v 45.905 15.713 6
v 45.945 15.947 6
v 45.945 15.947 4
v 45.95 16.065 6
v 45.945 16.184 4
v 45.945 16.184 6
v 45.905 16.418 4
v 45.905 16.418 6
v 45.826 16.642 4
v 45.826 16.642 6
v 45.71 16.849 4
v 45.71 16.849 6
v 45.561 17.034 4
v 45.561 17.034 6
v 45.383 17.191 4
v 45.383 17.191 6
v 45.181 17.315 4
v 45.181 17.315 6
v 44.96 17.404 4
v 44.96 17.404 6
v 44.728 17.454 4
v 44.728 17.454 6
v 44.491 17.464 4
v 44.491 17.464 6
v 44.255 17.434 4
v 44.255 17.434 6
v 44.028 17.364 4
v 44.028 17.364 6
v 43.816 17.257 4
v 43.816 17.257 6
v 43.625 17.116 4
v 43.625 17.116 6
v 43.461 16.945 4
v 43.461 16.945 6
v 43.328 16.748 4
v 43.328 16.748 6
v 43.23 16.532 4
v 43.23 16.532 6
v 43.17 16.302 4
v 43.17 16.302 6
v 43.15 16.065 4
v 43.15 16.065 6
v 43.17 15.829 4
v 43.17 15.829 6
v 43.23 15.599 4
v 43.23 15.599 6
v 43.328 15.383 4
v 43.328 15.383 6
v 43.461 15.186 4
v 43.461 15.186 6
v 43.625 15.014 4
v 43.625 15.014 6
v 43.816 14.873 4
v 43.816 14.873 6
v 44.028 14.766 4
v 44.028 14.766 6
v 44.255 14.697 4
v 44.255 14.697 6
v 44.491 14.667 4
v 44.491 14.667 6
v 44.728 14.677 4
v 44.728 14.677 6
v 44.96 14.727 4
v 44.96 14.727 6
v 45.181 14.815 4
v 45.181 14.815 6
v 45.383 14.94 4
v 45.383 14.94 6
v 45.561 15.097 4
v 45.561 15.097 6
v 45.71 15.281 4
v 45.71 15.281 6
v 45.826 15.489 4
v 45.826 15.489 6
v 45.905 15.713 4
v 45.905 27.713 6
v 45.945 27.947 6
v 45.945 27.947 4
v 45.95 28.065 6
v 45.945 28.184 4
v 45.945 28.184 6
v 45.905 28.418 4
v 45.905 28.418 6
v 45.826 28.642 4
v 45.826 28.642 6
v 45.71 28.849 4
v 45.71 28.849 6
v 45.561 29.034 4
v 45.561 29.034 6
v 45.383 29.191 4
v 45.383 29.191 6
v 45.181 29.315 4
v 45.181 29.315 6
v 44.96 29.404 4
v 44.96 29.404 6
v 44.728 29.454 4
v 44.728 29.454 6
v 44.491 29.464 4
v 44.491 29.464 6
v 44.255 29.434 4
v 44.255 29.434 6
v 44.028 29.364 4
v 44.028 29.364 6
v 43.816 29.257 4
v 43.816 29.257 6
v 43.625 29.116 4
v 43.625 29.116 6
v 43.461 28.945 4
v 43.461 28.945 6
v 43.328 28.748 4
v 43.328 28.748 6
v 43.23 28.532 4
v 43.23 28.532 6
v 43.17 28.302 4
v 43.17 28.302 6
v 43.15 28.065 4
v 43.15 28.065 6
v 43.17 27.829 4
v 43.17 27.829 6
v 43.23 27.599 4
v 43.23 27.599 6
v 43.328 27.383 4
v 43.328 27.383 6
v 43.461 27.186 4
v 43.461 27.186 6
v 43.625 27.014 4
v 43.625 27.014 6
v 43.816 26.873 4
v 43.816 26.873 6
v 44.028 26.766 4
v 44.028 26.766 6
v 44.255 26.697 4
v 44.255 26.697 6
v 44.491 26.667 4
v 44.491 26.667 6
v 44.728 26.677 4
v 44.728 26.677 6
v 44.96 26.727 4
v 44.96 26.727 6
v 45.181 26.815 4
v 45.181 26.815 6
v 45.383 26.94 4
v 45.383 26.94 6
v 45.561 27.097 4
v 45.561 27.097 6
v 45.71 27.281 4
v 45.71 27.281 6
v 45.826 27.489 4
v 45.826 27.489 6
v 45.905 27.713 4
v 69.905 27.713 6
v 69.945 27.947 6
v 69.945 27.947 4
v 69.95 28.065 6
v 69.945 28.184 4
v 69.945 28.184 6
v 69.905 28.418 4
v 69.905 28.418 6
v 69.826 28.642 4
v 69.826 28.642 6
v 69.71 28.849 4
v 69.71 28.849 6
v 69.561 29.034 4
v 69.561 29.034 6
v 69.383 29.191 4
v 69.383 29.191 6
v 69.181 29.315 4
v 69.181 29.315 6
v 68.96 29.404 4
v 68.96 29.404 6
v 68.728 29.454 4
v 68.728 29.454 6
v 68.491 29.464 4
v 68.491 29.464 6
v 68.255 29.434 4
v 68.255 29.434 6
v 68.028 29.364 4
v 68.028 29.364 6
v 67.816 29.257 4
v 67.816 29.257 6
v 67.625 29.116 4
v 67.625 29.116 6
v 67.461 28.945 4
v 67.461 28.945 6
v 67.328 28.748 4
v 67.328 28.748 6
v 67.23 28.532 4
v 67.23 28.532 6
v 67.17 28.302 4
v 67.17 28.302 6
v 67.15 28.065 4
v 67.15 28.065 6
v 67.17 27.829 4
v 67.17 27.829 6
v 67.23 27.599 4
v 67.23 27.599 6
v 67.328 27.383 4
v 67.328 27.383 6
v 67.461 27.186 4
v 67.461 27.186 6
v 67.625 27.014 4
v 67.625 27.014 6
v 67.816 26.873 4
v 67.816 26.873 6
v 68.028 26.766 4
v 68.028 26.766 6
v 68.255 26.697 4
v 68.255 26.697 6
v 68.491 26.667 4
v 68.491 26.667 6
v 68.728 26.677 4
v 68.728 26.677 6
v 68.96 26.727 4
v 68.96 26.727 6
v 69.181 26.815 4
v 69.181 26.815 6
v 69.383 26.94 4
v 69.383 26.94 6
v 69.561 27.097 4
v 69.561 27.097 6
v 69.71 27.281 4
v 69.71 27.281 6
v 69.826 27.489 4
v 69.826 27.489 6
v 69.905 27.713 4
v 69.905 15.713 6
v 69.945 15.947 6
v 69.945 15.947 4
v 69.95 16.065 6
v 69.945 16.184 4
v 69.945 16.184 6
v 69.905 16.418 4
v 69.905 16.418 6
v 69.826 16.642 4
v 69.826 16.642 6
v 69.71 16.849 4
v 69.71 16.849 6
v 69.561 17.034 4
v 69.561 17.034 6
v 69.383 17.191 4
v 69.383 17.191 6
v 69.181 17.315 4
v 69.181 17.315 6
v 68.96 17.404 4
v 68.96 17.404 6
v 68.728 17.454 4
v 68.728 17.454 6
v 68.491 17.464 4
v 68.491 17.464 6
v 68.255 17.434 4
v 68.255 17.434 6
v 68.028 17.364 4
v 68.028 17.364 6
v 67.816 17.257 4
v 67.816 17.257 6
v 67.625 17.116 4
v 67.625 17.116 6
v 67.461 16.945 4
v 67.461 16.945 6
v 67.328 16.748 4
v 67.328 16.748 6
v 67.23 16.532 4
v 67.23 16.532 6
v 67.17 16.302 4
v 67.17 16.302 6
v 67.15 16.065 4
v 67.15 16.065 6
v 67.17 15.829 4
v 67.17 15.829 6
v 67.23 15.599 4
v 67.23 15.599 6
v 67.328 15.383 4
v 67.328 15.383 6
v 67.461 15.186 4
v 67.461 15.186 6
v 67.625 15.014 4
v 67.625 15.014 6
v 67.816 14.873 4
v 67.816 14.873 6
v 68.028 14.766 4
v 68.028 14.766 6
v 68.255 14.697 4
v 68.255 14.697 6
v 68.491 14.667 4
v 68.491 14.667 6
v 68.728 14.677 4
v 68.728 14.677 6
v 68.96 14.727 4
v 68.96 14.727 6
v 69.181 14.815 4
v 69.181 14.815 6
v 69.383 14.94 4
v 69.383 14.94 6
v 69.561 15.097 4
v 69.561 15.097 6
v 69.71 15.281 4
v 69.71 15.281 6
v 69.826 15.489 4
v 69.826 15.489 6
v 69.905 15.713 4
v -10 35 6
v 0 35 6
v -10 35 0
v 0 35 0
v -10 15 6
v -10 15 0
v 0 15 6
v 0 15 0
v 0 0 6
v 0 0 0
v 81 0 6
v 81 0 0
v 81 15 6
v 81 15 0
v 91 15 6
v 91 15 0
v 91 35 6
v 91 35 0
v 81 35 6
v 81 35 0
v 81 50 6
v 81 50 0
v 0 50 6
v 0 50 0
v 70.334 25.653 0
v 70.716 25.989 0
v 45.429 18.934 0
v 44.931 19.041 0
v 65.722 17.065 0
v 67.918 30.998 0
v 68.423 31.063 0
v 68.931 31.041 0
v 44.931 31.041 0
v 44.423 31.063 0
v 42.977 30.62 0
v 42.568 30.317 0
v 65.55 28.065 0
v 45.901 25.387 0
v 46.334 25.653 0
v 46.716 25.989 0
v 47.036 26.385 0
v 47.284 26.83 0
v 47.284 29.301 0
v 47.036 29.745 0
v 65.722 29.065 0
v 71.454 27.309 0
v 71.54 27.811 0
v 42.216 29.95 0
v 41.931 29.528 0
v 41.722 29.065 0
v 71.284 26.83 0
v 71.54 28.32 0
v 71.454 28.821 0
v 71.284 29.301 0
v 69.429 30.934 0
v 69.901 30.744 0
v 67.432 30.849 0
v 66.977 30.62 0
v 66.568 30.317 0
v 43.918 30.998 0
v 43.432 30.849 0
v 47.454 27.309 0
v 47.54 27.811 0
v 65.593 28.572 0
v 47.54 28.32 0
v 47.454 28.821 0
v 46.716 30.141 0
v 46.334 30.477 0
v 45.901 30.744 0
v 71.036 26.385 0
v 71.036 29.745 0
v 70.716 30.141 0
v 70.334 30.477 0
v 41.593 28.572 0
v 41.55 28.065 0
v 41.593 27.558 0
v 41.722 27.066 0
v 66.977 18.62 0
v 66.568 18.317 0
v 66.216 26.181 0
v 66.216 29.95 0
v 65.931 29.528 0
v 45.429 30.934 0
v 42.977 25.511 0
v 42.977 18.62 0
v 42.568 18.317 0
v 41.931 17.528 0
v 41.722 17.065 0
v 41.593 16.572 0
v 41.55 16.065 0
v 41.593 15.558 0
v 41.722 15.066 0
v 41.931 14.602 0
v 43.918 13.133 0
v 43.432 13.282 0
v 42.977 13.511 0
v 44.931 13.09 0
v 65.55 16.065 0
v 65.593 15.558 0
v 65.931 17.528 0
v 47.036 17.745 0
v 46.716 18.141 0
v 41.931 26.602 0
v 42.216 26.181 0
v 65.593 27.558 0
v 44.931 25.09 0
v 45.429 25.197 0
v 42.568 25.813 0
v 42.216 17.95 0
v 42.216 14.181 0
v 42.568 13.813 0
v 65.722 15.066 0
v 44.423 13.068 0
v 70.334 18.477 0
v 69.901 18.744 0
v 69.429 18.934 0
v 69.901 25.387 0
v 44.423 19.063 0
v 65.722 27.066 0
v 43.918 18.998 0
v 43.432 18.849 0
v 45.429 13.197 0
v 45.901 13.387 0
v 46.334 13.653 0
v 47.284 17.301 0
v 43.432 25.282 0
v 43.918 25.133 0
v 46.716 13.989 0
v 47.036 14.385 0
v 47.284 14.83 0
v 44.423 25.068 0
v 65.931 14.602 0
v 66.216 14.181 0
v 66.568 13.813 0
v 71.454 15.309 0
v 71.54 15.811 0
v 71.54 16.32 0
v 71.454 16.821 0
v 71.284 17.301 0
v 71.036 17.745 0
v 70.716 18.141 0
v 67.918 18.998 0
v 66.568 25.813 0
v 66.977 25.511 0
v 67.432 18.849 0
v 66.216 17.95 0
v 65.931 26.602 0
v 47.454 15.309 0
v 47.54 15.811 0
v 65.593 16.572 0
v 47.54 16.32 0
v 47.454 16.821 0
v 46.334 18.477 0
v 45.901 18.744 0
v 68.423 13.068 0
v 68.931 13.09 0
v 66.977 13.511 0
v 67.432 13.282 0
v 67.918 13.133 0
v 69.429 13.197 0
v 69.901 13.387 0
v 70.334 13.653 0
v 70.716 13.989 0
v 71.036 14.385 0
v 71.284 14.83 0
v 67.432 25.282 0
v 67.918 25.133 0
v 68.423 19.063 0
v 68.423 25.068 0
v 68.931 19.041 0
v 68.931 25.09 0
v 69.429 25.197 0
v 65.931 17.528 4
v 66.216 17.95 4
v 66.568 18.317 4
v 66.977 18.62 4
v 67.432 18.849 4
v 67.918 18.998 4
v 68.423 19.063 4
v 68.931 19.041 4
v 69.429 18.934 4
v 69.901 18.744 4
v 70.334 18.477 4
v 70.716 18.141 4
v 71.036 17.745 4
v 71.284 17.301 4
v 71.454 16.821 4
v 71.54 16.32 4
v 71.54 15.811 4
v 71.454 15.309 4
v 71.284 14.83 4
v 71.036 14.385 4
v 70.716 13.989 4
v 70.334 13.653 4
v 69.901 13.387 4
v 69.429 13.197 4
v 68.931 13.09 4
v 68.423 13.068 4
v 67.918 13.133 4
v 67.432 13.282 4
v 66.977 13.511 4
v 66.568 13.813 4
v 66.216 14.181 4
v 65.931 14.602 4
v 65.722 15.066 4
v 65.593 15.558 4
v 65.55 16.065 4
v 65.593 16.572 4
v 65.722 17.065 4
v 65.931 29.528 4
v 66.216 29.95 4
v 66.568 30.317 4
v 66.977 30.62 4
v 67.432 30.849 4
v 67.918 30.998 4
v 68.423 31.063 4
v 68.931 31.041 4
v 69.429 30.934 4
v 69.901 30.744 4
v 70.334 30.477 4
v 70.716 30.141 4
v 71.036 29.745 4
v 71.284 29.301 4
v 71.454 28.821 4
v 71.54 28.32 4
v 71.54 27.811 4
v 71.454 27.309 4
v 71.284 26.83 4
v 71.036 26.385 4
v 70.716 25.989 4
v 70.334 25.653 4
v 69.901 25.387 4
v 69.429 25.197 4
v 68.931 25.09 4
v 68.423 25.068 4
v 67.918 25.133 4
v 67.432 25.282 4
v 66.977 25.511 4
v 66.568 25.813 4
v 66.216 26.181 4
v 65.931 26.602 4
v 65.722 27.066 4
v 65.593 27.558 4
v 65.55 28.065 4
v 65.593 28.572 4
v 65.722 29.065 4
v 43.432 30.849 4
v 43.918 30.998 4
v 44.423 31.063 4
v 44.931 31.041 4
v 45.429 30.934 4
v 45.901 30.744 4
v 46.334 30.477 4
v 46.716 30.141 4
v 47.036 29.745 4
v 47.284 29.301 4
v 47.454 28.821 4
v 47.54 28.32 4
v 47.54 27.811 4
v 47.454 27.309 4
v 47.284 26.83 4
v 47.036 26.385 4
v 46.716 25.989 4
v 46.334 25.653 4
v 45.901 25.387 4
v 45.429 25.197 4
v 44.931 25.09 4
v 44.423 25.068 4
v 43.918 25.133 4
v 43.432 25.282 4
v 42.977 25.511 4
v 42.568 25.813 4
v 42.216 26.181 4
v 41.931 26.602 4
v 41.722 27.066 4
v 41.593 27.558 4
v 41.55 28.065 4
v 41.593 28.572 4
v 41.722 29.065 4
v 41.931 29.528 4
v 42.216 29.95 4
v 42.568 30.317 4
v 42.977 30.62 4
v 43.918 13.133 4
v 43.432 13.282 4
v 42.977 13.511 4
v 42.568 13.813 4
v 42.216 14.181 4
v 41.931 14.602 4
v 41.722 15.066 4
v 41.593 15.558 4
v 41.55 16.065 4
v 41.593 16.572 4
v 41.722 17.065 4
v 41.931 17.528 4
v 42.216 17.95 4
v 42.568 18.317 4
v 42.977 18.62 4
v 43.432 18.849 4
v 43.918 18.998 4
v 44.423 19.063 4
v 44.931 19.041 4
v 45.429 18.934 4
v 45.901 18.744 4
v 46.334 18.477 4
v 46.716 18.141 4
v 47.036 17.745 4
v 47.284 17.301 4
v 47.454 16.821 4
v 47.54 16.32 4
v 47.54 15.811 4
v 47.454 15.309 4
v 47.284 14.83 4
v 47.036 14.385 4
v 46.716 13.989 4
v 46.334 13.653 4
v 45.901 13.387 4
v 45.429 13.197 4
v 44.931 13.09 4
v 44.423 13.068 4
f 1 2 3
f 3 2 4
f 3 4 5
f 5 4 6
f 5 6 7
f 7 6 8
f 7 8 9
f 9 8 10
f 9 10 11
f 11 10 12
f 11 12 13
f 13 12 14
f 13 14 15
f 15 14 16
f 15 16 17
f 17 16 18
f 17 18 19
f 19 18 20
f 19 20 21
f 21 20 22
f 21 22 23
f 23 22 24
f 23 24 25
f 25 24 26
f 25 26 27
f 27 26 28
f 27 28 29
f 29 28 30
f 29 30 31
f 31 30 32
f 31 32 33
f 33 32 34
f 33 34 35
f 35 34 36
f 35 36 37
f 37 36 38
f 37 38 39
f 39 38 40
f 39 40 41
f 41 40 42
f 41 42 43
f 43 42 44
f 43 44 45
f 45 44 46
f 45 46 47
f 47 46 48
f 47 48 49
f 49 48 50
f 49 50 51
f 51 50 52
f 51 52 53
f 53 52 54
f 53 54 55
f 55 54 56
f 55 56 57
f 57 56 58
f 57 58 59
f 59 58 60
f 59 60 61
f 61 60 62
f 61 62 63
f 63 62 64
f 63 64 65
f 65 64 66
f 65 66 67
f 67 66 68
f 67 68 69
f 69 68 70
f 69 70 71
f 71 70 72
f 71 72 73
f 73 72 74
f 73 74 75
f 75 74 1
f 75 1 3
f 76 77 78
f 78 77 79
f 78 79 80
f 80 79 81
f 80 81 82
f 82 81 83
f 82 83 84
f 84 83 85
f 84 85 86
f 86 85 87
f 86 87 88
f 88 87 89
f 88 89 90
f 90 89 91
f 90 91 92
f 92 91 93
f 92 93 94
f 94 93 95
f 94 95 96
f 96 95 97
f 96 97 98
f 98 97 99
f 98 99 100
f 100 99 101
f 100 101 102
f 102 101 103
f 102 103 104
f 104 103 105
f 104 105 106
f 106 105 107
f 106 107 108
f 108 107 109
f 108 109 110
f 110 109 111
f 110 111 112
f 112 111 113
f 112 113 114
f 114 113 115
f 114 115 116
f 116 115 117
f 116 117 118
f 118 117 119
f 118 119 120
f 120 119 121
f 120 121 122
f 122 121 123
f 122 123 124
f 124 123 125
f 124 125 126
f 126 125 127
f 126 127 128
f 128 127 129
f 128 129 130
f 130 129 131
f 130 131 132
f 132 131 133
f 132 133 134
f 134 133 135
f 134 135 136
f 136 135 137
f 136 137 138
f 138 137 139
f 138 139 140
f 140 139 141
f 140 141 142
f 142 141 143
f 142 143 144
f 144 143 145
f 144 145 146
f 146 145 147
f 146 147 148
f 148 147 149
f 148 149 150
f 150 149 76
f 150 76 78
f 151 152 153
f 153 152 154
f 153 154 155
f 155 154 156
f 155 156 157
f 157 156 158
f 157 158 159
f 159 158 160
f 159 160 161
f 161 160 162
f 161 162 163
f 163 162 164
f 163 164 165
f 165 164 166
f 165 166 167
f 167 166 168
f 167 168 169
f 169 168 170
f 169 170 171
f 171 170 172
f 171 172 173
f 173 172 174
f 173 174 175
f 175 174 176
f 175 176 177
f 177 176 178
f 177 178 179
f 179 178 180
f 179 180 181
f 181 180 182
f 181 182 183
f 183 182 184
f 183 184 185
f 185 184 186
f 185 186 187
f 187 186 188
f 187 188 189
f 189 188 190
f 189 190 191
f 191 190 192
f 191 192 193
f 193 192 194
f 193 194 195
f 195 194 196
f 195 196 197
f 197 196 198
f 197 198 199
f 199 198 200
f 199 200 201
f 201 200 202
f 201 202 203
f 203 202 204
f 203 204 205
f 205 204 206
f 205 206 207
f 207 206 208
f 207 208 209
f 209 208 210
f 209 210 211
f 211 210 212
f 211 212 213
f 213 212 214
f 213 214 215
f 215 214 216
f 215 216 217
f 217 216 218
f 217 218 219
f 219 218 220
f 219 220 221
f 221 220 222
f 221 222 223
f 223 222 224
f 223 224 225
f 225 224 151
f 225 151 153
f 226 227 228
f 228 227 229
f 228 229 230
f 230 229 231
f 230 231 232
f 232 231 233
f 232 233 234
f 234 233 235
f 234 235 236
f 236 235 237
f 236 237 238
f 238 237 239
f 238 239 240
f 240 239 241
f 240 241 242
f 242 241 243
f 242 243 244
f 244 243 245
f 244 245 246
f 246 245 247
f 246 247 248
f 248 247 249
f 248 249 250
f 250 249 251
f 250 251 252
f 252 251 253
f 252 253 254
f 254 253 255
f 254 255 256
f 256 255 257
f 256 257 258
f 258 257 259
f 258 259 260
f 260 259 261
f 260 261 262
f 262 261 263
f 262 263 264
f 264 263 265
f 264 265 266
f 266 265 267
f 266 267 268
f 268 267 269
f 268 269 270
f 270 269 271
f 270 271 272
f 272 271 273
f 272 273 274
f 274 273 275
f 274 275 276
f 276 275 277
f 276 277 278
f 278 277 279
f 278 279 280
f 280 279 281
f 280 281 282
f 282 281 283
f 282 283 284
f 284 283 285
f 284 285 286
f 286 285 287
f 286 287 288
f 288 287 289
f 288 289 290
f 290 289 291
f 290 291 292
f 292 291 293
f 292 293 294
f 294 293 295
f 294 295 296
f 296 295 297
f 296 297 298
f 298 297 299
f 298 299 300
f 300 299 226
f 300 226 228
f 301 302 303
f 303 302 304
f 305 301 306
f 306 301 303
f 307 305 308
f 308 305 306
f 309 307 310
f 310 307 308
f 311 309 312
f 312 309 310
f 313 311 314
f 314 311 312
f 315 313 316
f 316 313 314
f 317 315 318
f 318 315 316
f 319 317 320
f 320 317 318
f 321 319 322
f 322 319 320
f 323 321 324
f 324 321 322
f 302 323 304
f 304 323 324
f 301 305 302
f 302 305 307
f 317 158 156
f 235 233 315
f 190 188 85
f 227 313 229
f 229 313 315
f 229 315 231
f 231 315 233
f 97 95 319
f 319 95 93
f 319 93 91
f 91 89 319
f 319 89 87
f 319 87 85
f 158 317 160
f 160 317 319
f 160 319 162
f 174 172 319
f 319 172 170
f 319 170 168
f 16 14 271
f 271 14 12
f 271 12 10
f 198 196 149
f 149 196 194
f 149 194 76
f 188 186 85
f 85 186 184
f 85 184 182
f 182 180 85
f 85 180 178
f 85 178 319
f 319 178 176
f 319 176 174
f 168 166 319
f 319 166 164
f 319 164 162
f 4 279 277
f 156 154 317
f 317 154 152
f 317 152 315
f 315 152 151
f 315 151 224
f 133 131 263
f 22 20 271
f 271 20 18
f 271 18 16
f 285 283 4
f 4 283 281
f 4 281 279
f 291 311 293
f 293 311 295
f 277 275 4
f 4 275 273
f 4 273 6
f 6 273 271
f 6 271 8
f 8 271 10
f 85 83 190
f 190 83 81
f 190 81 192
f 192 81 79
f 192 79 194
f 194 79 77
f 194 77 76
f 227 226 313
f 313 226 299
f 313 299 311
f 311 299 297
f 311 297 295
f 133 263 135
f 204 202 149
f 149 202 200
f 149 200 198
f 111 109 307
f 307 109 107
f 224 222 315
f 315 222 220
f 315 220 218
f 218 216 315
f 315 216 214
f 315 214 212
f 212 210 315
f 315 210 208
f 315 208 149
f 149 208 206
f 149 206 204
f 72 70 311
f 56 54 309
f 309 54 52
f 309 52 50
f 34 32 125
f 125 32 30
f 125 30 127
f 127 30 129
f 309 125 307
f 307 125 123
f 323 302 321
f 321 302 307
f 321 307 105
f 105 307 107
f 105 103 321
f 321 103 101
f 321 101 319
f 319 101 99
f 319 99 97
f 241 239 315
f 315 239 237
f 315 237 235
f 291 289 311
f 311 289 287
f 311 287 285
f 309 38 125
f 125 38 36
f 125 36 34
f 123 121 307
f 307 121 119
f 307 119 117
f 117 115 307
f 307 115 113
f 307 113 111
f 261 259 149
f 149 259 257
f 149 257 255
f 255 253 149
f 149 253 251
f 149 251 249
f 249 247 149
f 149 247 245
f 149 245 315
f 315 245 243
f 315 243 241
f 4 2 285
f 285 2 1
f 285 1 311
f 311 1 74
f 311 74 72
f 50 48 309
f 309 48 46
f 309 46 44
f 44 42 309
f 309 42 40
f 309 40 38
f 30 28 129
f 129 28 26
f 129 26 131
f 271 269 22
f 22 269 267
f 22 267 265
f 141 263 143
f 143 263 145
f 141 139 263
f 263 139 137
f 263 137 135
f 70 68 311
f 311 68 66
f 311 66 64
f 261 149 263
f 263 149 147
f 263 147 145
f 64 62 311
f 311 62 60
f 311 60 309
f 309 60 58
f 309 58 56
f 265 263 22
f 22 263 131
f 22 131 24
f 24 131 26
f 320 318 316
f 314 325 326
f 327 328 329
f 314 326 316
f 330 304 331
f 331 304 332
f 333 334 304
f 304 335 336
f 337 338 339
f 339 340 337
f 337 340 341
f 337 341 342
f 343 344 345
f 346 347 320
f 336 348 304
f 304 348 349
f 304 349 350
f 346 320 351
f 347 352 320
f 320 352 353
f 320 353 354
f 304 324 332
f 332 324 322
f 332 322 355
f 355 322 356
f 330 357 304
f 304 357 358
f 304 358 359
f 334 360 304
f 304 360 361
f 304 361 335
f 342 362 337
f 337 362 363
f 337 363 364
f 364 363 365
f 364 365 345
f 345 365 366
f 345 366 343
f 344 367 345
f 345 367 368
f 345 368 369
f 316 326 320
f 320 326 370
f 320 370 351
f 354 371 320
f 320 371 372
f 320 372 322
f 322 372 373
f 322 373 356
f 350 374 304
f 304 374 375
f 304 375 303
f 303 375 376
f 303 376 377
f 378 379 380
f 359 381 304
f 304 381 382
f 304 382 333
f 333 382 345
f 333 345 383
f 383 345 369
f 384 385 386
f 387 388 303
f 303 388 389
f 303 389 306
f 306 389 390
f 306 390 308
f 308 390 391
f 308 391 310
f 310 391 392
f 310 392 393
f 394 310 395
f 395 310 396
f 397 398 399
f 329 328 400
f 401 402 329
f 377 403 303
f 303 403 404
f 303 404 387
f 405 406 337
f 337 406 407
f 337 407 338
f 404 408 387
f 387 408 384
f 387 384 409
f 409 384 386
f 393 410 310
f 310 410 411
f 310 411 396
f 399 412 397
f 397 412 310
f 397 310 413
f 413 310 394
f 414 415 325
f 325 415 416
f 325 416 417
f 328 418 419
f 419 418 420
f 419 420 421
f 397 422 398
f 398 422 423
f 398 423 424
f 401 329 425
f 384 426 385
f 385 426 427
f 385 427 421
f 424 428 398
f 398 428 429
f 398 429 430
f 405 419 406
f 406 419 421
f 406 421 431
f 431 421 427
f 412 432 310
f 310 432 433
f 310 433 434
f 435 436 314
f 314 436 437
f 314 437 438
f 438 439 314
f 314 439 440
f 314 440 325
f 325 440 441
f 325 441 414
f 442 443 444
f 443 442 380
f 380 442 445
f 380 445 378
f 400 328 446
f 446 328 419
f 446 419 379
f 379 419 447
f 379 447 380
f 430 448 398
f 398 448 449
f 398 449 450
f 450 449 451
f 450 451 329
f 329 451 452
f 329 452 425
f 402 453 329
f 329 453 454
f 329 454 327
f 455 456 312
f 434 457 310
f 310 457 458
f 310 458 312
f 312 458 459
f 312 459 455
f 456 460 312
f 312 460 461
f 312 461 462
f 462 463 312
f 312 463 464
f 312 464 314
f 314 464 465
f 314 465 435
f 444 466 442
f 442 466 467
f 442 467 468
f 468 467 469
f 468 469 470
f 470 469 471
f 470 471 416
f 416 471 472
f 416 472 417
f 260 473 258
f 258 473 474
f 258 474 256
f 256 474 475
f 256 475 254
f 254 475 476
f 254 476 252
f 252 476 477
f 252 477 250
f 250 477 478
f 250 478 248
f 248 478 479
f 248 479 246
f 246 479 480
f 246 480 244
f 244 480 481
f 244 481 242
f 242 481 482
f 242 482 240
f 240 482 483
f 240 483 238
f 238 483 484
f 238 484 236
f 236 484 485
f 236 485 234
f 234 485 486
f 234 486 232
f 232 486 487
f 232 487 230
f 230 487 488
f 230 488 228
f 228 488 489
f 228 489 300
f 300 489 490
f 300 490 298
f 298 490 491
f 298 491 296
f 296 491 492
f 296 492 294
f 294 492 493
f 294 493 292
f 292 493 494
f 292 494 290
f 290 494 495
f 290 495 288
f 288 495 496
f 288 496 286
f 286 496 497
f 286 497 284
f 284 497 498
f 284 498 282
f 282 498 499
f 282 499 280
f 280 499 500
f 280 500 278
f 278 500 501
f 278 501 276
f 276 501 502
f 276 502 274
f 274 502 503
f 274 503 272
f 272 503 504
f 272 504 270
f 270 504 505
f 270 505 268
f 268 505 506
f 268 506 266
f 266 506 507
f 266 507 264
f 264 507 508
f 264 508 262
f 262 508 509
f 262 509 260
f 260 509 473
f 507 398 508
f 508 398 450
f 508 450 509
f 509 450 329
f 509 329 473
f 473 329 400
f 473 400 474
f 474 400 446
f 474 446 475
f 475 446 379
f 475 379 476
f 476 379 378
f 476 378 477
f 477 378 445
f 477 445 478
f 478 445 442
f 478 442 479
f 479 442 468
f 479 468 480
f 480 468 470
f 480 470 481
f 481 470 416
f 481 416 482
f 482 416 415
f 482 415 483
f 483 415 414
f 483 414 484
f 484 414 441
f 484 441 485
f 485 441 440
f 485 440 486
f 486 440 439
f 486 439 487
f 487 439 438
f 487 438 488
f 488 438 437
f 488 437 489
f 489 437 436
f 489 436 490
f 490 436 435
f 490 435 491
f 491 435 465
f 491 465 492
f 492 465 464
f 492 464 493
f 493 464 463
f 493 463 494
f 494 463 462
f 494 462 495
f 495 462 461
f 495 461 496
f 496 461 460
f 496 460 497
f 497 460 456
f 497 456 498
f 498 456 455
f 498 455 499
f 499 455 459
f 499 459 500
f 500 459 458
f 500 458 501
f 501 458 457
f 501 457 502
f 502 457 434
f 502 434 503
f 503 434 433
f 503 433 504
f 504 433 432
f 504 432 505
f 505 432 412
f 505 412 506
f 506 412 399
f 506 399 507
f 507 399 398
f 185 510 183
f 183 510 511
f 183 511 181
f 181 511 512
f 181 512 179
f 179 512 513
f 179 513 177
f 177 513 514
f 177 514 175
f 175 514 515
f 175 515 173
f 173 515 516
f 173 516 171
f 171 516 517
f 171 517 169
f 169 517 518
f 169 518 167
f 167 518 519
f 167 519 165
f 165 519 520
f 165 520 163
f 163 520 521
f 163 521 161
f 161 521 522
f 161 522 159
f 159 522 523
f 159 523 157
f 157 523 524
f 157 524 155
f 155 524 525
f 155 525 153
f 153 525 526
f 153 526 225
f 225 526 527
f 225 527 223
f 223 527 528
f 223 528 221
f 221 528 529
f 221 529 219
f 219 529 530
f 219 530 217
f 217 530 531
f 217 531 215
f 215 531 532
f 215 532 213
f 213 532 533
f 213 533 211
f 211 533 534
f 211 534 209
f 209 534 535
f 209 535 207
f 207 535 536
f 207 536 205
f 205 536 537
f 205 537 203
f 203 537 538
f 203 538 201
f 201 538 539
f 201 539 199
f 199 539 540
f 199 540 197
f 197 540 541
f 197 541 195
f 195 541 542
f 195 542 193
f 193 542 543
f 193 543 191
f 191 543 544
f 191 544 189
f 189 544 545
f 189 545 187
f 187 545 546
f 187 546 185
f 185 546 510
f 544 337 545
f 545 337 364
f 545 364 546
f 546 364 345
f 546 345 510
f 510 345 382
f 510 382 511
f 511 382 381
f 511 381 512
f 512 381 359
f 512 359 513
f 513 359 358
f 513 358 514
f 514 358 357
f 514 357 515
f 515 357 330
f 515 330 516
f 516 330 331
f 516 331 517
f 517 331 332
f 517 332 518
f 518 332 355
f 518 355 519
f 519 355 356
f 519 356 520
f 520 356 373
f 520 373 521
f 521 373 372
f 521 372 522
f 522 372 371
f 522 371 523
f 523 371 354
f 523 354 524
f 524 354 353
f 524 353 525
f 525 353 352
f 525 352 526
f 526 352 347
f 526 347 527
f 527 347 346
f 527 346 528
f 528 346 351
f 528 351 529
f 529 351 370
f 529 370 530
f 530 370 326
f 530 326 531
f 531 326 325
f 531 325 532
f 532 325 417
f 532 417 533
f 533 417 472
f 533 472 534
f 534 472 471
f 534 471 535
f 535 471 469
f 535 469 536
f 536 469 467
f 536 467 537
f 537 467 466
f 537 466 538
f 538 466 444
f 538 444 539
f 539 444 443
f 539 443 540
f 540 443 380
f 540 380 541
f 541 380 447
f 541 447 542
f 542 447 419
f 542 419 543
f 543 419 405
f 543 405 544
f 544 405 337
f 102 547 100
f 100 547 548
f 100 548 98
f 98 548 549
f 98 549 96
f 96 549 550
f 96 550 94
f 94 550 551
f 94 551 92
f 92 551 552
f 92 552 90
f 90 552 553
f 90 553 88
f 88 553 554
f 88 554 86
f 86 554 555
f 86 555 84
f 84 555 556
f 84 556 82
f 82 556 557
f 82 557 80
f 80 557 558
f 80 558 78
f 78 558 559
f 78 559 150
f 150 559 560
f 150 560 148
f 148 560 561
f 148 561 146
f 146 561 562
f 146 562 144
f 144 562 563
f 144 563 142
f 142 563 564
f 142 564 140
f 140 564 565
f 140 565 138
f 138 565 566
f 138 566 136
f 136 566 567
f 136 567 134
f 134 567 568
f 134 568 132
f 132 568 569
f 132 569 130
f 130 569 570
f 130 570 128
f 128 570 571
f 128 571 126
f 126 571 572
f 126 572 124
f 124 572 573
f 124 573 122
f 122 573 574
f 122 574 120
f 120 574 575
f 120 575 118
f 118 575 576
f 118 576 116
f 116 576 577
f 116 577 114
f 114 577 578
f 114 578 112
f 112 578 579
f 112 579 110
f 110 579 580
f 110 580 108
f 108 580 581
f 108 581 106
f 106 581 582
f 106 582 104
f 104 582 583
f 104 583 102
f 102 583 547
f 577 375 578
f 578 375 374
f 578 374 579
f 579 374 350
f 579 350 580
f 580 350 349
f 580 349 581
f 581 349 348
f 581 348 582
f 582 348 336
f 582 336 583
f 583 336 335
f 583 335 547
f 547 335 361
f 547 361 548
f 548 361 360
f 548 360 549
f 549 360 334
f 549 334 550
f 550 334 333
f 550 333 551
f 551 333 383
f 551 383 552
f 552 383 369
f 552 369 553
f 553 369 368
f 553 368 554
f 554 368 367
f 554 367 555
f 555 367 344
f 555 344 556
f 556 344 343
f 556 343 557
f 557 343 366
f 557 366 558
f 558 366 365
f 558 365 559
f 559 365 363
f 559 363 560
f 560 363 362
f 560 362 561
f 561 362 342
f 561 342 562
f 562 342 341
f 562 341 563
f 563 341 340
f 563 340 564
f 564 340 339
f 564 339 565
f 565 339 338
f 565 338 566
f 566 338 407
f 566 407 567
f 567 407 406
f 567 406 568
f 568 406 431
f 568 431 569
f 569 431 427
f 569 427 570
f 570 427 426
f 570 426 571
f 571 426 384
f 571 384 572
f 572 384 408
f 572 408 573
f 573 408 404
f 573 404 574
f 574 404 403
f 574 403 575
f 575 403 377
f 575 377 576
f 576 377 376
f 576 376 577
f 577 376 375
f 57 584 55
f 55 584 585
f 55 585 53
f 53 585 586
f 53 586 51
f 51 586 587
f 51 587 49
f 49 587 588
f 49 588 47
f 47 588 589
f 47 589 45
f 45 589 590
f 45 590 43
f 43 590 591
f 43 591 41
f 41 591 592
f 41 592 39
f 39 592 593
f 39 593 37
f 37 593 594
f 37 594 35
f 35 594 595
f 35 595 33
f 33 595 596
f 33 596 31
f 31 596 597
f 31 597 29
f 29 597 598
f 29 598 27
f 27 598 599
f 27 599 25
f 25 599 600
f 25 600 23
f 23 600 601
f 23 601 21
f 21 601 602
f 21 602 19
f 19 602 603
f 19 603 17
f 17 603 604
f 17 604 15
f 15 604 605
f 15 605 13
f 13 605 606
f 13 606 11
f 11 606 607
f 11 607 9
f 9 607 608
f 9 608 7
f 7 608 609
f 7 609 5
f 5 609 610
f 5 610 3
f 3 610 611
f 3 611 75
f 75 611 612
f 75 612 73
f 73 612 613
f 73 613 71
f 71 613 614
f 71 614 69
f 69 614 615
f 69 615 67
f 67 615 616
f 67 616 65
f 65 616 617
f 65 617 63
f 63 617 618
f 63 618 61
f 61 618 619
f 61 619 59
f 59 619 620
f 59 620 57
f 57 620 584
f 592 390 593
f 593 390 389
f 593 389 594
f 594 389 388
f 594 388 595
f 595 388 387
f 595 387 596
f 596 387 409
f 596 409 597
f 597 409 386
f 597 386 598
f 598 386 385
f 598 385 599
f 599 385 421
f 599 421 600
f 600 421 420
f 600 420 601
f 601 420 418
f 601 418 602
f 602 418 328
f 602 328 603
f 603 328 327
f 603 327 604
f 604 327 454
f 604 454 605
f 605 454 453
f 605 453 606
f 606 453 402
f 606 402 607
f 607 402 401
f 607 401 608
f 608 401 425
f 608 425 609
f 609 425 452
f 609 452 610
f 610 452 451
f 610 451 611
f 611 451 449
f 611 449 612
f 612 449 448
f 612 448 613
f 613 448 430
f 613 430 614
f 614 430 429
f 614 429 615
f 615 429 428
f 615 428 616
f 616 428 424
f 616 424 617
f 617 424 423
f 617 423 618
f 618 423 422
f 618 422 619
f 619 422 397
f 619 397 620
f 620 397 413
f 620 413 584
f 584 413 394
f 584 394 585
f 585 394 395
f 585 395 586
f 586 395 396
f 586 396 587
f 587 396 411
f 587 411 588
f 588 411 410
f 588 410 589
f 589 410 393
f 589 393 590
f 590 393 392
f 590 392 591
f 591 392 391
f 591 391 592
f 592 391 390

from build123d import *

# Parameters (mm, degrees)
ESQUISSE1_W             = 10
ESQUISSE1_H             = 20
ESQUISSE1_W_2           = 81
ESQUISSE1_H_2           = 50
BOSS_EXTRU_1_DEPTH      = 6
ESQUISSE2_R             = 1.4
ENL_V_MAT_EXTRU_1_DEPTH = 6
ESQUISSE3_R             = 3
ENL_V_MAT_EXTRU_2_DEPTH = 4


with BuildPart() as part:
    # Esquisse1 → Boss.-Extru.1 (new body)
    with BuildSketch(Plane.XY):
        with Locations((-5, 25)):
            Rectangle(ESQUISSE1_W, ESQUISSE1_H)
        with Locations((40.5, 25)):
            Rectangle(ESQUISSE1_W_2, ESQUISSE1_H_2)
        with Locations((86, 25)):
            Rectangle(ESQUISSE1_W, ESQUISSE1_H)
    extrude(amount=BOSS_EXTRU_1_DEPTH)

    # Esquisse2 → Enlèv. mat.-Extru.1 (cut)
    with BuildSketch(Plane(origin=(0, 0, 0), x_dir=(-1, 0, 0), z_dir=(0, 0, -1))):
        with Locations((-44.550340057, 16.065313345)):
            Circle(ESQUISSE2_R)
        with Locations((-44.550340057, 28.065313345)):
            Circle(ESQUISSE2_R)
        with Locations((-68.550340057, 28.065313345)):
            Circle(ESQUISSE2_R)
        with Locations((-68.550340057, 16.065313345)):
            Circle(ESQUISSE2_R)
    extrude(amount=-ENL_V_MAT_EXTRU_1_DEPTH, mode=Mode.SUBTRACT)

    # Esquisse3 → Enlèv. mat.-Extru.2 (cut)
    with BuildSketch(Plane(origin=(0, 0, 0), x_dir=(-1, 0, 0), z_dir=(0, 0, -1))):
        with Locations((-68.550340057, 28.065313345)):
            Circle(ESQUISSE3_R)
        with Locations((-44.550340057, 28.065313345)):
            Circle(ESQUISSE3_R)
        with Locations((-44.550340057, 16.065313345)):
            Circle(ESQUISSE3_R)
        with Locations((-68.550340057, 16.065313345)):
            Circle(ESQUISSE3_R)
    extrude(amount=-ENL_V_MAT_EXTRU_2_DEPTH, mode=Mode.SUBTRACT)


solid = part.part
